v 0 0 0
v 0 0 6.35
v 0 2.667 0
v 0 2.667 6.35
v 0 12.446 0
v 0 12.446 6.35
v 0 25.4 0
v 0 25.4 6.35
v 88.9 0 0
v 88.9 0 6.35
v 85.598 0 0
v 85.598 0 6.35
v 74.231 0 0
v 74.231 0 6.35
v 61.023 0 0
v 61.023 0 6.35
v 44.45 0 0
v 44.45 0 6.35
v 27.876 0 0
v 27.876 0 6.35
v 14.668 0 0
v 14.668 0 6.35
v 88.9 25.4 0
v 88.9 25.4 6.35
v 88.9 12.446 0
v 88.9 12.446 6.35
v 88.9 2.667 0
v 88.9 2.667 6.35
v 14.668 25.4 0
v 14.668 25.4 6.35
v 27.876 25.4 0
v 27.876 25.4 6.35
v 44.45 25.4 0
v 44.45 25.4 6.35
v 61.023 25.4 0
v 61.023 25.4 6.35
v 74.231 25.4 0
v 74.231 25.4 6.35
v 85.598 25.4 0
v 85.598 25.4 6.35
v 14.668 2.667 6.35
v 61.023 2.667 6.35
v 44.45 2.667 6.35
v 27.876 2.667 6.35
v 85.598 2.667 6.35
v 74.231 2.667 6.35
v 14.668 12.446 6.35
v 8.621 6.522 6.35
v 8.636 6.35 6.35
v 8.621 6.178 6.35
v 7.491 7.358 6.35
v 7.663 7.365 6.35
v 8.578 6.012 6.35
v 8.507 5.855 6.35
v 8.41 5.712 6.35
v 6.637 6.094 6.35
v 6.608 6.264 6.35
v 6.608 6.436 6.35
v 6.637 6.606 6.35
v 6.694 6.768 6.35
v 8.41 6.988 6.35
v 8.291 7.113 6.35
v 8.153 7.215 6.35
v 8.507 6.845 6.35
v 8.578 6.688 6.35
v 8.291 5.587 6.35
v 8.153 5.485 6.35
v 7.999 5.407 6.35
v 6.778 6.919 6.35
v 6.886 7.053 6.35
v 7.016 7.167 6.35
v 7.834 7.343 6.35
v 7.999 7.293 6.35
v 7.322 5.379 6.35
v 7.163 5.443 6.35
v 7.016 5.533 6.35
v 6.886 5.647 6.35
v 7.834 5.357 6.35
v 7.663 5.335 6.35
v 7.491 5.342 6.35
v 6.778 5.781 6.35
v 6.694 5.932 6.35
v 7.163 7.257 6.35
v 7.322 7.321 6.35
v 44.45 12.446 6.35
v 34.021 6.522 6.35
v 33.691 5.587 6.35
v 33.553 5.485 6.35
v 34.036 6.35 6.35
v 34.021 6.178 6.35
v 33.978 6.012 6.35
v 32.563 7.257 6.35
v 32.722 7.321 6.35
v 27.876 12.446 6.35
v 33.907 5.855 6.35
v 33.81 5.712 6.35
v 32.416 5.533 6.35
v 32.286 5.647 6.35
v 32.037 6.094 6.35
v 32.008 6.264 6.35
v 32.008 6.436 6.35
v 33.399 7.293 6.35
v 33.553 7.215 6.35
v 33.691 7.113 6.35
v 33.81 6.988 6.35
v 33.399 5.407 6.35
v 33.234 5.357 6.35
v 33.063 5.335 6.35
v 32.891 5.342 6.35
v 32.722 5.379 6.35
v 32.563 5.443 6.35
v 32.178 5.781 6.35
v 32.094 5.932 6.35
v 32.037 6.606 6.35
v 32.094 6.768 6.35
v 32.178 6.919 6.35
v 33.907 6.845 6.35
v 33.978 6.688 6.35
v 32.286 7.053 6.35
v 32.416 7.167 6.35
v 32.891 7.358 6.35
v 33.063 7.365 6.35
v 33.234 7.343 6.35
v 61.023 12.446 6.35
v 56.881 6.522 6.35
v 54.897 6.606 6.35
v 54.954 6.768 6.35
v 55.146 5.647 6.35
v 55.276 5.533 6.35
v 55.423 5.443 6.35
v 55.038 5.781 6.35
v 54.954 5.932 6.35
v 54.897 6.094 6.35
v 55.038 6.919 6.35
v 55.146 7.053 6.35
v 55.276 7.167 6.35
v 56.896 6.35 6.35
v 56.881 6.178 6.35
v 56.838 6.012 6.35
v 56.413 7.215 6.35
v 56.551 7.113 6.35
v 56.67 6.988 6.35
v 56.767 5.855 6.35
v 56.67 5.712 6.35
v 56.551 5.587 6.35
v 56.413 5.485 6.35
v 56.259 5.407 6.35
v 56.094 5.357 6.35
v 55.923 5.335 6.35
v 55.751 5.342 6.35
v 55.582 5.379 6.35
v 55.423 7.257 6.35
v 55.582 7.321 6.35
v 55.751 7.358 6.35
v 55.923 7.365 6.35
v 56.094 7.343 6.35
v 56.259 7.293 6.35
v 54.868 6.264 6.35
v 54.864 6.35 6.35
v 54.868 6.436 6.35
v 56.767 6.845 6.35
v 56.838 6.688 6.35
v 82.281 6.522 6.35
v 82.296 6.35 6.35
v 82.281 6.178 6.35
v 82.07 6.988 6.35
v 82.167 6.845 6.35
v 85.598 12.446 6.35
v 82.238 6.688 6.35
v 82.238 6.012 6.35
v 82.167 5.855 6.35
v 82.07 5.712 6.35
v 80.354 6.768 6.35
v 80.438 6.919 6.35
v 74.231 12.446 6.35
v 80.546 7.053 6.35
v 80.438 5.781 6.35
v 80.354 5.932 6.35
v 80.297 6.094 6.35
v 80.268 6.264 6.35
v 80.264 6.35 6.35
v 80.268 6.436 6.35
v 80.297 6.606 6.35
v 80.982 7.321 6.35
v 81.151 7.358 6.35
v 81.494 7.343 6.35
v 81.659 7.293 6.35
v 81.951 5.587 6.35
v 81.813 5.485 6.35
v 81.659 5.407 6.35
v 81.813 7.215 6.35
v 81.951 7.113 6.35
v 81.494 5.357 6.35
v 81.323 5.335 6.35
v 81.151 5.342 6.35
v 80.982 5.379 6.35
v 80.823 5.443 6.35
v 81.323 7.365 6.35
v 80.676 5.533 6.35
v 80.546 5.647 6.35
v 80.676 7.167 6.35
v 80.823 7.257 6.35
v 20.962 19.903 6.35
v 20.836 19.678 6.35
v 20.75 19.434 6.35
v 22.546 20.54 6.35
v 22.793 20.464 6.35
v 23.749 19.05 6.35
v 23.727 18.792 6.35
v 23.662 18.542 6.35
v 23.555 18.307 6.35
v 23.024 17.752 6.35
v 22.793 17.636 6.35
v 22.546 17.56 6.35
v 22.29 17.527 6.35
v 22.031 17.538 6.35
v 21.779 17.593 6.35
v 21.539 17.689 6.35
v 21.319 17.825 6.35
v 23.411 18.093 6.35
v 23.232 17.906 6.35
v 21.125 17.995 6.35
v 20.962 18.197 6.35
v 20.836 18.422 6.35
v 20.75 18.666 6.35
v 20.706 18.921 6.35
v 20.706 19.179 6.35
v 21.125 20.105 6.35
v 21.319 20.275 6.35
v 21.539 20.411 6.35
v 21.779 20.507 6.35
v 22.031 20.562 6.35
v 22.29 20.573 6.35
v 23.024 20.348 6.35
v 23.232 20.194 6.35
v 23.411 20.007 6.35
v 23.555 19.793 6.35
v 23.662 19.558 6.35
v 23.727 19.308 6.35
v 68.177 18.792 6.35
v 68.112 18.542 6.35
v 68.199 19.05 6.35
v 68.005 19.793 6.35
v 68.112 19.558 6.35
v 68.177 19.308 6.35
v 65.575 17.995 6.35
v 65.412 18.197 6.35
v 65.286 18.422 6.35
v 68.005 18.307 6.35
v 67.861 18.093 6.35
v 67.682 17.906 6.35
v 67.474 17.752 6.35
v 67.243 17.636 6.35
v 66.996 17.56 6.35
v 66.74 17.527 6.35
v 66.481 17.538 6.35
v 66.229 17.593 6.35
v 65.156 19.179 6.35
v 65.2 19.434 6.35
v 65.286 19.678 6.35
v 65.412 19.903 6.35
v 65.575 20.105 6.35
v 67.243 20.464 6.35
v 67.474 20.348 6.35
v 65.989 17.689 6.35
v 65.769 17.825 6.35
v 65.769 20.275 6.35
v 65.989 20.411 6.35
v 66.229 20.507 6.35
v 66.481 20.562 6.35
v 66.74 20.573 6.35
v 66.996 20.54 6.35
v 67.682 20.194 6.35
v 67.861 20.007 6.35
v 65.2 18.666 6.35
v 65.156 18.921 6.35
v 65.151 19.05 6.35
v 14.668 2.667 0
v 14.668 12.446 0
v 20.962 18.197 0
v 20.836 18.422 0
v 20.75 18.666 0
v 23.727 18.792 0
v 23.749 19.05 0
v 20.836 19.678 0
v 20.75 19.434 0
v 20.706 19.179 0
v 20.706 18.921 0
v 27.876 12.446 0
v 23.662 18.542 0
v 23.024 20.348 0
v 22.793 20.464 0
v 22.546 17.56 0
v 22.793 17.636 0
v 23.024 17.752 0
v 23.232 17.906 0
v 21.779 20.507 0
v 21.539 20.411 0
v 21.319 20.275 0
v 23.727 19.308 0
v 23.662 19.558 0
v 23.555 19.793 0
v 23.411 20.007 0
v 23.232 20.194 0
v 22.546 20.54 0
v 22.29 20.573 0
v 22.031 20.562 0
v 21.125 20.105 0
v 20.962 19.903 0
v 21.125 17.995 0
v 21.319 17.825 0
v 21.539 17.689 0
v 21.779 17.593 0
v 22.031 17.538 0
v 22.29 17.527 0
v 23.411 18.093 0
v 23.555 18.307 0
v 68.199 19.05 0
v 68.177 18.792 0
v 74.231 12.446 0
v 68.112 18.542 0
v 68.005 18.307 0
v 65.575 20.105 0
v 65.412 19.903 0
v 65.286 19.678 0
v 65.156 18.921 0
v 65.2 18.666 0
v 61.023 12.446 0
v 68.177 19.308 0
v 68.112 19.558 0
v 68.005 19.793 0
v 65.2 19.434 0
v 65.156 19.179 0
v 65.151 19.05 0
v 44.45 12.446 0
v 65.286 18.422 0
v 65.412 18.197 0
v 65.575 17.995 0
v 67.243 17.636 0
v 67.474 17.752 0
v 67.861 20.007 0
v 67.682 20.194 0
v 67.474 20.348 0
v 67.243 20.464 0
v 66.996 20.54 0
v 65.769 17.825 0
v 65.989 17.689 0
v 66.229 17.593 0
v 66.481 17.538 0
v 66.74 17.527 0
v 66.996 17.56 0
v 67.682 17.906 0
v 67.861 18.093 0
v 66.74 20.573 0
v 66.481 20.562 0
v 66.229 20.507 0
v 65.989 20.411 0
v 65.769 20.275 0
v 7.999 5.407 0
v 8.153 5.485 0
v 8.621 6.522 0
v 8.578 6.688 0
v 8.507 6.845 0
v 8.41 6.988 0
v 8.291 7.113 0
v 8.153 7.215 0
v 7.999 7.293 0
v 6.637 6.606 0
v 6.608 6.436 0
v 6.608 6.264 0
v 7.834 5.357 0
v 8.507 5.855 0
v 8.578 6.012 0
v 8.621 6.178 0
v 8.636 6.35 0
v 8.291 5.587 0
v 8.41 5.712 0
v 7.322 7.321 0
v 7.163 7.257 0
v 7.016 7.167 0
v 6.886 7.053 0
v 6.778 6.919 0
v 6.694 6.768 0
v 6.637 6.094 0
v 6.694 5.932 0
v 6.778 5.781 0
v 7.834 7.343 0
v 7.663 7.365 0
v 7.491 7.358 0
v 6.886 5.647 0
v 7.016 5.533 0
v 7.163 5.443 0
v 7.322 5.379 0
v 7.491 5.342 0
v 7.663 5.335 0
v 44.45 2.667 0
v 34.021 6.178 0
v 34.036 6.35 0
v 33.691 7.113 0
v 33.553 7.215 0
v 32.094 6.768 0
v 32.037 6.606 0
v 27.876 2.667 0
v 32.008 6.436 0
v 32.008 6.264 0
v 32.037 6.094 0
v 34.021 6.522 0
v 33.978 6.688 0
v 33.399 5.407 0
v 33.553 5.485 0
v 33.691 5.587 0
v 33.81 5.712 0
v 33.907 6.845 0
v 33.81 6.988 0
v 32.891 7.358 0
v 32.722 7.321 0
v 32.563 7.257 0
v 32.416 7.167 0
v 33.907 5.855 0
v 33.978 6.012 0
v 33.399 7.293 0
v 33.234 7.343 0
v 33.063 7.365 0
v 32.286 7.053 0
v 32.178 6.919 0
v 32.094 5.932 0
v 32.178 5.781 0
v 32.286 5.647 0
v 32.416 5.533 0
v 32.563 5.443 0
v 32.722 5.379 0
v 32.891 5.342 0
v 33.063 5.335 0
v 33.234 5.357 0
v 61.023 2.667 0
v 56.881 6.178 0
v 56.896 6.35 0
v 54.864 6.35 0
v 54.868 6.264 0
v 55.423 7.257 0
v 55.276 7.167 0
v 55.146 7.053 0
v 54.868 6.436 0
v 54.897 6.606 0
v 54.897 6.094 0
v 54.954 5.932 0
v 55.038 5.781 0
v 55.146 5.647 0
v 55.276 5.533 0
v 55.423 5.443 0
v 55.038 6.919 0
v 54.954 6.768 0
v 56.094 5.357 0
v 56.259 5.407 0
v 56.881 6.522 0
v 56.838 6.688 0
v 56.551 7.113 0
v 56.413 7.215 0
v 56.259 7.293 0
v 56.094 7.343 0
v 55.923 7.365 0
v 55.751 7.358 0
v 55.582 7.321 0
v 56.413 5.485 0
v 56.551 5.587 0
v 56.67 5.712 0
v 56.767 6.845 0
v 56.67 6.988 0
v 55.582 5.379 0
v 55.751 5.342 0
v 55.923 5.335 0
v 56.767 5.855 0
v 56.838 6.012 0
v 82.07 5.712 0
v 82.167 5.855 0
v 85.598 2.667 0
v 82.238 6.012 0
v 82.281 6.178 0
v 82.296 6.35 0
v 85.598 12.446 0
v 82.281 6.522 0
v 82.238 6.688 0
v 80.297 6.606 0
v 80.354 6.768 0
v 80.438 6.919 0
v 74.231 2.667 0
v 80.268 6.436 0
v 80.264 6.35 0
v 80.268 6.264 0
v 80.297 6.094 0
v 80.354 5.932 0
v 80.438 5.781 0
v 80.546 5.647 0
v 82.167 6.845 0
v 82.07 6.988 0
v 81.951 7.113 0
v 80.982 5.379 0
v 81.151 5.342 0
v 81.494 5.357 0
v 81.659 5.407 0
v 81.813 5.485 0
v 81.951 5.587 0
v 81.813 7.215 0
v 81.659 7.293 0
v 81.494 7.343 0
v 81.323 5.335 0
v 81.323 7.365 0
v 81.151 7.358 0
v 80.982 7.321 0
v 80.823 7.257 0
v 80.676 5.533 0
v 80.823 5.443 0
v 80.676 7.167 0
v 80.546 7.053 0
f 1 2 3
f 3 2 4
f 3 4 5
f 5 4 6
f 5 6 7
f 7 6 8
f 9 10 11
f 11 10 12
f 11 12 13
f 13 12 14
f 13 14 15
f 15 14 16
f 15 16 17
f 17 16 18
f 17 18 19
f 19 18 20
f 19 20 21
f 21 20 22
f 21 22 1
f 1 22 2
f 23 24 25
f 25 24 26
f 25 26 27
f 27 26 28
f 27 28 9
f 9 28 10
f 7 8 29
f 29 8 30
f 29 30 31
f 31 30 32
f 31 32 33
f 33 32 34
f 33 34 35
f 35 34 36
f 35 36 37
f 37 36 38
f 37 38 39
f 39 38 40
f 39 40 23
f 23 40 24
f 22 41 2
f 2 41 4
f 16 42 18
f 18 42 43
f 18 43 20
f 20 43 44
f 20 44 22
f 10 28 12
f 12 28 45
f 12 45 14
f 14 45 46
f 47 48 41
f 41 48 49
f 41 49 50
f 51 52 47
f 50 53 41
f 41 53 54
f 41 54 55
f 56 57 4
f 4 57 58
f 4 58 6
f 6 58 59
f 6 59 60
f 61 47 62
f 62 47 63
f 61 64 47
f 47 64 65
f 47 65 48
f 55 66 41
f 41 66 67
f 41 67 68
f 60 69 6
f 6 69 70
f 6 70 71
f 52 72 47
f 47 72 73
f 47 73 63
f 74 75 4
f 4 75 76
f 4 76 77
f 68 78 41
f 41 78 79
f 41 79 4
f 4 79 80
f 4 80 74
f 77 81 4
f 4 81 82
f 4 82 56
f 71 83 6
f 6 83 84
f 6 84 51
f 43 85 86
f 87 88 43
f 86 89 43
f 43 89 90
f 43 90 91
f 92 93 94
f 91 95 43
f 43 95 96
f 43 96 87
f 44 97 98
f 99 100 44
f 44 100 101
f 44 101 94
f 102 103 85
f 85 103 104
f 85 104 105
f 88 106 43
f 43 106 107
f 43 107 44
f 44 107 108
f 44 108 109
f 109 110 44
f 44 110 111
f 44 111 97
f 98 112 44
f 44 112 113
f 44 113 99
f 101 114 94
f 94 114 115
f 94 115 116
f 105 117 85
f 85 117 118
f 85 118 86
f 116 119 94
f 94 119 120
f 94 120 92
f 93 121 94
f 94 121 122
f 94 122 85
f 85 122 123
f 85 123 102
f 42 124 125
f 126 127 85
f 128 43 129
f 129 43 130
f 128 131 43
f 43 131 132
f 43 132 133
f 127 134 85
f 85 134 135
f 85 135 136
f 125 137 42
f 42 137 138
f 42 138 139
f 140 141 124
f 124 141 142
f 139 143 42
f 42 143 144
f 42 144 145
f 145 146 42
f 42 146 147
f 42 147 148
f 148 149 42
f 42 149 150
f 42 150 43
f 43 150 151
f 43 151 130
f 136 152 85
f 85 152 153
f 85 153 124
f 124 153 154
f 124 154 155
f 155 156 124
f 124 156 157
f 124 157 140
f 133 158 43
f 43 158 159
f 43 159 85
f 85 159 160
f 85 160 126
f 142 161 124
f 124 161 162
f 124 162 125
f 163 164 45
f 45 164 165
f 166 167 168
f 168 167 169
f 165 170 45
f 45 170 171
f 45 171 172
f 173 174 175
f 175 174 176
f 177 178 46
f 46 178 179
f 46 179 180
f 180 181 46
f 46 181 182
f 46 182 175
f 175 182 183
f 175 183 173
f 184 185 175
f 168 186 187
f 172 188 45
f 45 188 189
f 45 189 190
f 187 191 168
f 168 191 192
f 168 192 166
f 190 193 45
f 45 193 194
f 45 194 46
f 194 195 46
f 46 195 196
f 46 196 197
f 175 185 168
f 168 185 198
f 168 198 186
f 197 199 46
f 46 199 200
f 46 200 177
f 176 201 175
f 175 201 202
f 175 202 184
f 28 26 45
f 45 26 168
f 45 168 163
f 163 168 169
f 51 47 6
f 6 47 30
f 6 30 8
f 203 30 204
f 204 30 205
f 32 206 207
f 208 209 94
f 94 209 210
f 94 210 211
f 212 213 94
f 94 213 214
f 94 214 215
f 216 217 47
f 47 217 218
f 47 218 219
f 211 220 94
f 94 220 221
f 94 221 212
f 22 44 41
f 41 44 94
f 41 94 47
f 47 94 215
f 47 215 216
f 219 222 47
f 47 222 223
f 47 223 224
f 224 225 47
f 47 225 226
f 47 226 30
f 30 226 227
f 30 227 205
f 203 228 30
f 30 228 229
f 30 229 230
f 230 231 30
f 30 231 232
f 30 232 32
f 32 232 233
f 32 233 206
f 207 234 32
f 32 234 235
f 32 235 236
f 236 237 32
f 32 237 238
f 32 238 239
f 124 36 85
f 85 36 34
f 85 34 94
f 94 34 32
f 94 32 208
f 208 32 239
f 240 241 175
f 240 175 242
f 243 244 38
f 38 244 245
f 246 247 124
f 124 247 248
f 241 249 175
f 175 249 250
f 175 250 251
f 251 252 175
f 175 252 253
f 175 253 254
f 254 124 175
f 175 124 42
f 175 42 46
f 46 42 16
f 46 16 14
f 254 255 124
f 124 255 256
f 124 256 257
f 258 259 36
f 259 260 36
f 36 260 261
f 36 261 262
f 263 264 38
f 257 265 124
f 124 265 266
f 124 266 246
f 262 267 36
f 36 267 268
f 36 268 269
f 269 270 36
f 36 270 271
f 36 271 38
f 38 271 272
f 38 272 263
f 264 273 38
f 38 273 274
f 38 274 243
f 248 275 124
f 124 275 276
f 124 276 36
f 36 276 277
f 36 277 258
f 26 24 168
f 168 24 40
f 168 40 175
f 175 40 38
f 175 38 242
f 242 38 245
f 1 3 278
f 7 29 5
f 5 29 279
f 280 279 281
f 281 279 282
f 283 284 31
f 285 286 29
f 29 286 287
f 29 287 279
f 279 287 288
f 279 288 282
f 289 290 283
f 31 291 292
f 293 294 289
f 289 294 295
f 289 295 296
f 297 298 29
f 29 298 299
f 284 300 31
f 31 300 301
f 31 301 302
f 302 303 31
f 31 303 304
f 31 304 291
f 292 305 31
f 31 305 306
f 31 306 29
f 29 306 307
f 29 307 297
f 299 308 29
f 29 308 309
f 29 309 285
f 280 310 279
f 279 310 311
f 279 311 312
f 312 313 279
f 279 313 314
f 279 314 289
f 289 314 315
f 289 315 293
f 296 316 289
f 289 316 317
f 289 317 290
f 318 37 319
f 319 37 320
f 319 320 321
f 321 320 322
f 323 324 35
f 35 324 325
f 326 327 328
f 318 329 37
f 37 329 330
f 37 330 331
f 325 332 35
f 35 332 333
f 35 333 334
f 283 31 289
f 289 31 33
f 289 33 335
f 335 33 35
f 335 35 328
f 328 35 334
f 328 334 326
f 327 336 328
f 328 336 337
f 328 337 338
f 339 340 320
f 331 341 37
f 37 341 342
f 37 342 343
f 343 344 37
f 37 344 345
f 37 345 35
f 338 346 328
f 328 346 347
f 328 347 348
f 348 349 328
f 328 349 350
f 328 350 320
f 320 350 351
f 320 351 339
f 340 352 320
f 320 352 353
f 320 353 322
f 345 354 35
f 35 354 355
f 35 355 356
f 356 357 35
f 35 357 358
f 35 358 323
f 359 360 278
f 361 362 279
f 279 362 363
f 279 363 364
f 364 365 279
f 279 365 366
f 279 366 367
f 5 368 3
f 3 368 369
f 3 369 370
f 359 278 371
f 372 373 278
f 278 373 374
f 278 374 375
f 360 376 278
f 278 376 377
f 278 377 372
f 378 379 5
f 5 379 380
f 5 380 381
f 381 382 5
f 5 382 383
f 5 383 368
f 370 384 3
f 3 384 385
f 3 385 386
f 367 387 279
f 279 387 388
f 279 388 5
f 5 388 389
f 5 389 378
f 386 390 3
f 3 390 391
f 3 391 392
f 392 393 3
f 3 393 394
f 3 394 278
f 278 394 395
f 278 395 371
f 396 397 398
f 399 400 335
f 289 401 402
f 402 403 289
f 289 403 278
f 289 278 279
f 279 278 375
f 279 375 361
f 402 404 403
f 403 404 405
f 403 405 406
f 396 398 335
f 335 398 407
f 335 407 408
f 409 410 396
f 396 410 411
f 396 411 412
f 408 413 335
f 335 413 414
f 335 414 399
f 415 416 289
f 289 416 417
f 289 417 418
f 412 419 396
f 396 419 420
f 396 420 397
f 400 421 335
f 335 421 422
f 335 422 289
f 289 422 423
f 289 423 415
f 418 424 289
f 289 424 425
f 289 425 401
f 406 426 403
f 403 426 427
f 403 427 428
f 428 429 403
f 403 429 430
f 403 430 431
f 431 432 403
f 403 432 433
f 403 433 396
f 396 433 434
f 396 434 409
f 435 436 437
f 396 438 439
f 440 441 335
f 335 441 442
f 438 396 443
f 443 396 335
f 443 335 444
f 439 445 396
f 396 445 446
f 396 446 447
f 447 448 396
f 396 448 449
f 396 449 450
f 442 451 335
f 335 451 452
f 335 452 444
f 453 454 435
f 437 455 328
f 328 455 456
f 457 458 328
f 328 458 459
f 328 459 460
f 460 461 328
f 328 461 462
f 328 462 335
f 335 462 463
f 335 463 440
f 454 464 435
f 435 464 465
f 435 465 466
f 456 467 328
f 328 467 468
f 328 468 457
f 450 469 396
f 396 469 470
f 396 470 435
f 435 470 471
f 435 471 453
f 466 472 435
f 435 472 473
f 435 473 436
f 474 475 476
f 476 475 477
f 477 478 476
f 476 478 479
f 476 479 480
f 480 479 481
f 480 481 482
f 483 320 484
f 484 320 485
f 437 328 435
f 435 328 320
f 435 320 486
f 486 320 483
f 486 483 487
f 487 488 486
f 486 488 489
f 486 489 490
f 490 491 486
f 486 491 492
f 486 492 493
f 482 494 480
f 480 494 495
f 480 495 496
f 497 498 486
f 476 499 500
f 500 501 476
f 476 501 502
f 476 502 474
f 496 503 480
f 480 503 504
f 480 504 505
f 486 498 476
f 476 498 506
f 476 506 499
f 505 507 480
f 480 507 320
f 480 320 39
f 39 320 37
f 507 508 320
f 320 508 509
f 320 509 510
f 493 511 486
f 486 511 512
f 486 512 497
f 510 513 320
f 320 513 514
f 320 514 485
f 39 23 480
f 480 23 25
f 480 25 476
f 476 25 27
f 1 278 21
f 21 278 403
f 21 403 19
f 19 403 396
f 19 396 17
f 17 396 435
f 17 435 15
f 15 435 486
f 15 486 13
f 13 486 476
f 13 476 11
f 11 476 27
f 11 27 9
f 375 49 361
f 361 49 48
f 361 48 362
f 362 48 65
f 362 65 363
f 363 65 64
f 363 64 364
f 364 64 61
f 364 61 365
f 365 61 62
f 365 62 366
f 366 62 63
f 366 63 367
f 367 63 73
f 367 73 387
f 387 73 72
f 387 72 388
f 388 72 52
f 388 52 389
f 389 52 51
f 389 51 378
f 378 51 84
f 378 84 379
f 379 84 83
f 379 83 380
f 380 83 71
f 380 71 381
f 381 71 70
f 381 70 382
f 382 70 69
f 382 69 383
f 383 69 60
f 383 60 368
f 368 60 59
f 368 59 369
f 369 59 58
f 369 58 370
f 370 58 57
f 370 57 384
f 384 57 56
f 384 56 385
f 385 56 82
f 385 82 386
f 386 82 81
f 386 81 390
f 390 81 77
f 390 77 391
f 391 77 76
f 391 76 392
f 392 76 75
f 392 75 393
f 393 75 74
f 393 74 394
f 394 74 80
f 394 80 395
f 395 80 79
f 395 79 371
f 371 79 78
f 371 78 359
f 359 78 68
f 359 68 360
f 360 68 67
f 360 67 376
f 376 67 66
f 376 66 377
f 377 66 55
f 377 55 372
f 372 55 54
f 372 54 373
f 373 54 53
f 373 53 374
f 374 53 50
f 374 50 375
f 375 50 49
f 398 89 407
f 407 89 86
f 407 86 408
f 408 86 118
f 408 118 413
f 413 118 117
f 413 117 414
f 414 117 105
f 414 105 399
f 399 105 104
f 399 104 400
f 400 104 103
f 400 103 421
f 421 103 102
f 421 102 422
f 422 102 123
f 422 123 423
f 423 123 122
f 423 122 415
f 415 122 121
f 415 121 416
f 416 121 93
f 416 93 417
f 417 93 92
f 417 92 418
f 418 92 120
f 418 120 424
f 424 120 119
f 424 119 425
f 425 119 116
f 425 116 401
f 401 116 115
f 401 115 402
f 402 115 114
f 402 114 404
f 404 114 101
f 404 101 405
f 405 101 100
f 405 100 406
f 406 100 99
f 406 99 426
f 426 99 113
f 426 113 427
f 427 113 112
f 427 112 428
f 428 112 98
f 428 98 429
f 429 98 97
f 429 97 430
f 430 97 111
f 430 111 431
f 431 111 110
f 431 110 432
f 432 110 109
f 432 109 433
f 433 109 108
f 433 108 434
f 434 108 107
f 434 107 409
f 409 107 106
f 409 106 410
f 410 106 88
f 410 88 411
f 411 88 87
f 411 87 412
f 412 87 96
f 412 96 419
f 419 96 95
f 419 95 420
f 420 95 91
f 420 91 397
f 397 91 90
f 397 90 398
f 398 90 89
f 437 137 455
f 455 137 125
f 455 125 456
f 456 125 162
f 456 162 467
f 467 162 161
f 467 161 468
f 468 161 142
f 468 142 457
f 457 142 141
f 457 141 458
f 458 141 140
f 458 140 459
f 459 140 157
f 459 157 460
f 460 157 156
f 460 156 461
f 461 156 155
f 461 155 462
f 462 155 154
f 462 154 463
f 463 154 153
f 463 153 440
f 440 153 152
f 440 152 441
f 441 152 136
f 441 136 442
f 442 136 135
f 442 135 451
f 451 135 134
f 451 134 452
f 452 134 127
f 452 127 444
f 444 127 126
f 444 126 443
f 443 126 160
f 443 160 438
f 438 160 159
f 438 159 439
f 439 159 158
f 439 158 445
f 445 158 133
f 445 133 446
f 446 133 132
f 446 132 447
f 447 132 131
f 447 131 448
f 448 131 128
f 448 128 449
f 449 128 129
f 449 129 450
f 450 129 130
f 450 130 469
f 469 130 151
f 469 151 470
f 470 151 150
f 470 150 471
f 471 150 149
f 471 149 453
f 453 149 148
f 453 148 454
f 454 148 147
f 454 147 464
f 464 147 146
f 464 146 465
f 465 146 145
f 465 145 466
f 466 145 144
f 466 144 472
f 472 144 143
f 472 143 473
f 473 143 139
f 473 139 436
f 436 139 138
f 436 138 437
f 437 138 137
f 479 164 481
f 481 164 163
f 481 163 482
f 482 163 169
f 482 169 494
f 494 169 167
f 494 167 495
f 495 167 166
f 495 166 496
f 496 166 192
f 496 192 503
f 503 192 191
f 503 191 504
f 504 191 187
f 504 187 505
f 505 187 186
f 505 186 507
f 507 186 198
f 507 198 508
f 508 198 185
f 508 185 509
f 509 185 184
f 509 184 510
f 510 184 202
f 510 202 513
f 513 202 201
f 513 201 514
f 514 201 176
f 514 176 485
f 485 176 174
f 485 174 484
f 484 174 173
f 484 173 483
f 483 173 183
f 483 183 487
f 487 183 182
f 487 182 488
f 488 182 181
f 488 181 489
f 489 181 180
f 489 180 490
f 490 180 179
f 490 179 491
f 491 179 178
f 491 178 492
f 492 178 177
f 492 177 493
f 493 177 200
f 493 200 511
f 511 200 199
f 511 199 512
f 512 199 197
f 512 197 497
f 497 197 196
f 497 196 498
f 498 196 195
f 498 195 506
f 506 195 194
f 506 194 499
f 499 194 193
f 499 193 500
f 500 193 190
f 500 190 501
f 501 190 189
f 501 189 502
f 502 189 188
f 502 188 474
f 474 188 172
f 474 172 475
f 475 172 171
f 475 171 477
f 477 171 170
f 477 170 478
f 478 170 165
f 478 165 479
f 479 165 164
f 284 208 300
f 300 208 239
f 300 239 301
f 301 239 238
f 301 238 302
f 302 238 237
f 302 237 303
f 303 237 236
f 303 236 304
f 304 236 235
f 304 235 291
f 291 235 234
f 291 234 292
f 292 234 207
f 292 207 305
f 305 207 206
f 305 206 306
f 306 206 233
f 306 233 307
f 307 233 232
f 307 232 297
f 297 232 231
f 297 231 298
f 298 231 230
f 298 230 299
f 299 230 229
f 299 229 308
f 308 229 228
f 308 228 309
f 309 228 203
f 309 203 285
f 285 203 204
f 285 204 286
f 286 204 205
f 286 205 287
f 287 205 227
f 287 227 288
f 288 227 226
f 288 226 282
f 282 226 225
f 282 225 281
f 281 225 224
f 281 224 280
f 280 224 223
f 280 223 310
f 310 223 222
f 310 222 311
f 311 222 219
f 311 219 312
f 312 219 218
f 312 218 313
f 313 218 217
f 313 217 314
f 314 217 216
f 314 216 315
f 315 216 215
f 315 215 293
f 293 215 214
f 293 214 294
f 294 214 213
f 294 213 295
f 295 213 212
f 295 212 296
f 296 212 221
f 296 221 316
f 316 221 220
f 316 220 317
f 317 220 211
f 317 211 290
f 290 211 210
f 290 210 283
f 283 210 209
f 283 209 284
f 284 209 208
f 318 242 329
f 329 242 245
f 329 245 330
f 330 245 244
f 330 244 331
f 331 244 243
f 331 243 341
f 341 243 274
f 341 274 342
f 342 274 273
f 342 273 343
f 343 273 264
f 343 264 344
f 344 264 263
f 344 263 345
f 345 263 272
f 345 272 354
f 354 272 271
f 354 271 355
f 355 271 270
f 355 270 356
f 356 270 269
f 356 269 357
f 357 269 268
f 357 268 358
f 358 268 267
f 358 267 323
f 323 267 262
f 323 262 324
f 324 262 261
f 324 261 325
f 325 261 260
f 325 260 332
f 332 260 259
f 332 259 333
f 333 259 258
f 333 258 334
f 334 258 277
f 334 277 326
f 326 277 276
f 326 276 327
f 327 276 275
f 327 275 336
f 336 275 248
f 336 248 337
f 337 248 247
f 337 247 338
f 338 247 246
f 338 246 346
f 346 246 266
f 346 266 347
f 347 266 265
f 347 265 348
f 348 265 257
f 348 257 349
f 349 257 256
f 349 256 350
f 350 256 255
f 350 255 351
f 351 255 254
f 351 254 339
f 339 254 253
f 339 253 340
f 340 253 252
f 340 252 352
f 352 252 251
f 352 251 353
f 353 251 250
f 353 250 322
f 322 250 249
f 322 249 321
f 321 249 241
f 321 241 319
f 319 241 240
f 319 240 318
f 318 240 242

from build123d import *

# Parameters (mm, degrees)
SKETCH1_W           = 88.9
SKETCH1_H           = 25.4
BOSS_EXTRUDE1_DEPTH = 6.35
SKETCH2_R           = 1.016
CUT_EXTRUDE1_DEPTH  = 7.35
SKETCH3_R           = 1.524
CUT_EXTRUDE2_DEPTH  = 7.35


with BuildPart() as part:
    # Sketch1 → Boss-Extrude1 (new body)
    with BuildSketch(Plane.XY):
        with Locations((44.45, 12.7)):
            Rectangle(SKETCH1_W, SKETCH1_H)
    extrude(amount=BOSS_EXTRUDE1_DEPTH)

    # Sketch2 → Cut-Extrude1 (cut, through all)
    with BuildSketch(Plane.XY.offset(6.35)):
        with Locations((7.62, 6.35)):
            Circle(SKETCH2_R)
        with Locations((33.02, 6.35)):
            Circle(SKETCH2_R)
        with Locations((55.88, 6.35)):
            Circle(SKETCH2_R)
        with Locations((81.28, 6.35)):
            Circle(SKETCH2_R)
    extrude(amount=-CUT_EXTRUDE1_DEPTH, mode=Mode.SUBTRACT)

    # Sketch3 → Cut-Extrude2 (cut, through all)
    with BuildSketch(Plane.XY.offset(6.35)):
        with Locations((22.225, 19.05)):
            Circle(SKETCH3_R)
        with Locations((66.675, 19.05)):
            Circle(SKETCH3_R)
    extrude(amount=-CUT_EXTRUDE2_DEPTH, mode=Mode.SUBTRACT)


solid = part.part
